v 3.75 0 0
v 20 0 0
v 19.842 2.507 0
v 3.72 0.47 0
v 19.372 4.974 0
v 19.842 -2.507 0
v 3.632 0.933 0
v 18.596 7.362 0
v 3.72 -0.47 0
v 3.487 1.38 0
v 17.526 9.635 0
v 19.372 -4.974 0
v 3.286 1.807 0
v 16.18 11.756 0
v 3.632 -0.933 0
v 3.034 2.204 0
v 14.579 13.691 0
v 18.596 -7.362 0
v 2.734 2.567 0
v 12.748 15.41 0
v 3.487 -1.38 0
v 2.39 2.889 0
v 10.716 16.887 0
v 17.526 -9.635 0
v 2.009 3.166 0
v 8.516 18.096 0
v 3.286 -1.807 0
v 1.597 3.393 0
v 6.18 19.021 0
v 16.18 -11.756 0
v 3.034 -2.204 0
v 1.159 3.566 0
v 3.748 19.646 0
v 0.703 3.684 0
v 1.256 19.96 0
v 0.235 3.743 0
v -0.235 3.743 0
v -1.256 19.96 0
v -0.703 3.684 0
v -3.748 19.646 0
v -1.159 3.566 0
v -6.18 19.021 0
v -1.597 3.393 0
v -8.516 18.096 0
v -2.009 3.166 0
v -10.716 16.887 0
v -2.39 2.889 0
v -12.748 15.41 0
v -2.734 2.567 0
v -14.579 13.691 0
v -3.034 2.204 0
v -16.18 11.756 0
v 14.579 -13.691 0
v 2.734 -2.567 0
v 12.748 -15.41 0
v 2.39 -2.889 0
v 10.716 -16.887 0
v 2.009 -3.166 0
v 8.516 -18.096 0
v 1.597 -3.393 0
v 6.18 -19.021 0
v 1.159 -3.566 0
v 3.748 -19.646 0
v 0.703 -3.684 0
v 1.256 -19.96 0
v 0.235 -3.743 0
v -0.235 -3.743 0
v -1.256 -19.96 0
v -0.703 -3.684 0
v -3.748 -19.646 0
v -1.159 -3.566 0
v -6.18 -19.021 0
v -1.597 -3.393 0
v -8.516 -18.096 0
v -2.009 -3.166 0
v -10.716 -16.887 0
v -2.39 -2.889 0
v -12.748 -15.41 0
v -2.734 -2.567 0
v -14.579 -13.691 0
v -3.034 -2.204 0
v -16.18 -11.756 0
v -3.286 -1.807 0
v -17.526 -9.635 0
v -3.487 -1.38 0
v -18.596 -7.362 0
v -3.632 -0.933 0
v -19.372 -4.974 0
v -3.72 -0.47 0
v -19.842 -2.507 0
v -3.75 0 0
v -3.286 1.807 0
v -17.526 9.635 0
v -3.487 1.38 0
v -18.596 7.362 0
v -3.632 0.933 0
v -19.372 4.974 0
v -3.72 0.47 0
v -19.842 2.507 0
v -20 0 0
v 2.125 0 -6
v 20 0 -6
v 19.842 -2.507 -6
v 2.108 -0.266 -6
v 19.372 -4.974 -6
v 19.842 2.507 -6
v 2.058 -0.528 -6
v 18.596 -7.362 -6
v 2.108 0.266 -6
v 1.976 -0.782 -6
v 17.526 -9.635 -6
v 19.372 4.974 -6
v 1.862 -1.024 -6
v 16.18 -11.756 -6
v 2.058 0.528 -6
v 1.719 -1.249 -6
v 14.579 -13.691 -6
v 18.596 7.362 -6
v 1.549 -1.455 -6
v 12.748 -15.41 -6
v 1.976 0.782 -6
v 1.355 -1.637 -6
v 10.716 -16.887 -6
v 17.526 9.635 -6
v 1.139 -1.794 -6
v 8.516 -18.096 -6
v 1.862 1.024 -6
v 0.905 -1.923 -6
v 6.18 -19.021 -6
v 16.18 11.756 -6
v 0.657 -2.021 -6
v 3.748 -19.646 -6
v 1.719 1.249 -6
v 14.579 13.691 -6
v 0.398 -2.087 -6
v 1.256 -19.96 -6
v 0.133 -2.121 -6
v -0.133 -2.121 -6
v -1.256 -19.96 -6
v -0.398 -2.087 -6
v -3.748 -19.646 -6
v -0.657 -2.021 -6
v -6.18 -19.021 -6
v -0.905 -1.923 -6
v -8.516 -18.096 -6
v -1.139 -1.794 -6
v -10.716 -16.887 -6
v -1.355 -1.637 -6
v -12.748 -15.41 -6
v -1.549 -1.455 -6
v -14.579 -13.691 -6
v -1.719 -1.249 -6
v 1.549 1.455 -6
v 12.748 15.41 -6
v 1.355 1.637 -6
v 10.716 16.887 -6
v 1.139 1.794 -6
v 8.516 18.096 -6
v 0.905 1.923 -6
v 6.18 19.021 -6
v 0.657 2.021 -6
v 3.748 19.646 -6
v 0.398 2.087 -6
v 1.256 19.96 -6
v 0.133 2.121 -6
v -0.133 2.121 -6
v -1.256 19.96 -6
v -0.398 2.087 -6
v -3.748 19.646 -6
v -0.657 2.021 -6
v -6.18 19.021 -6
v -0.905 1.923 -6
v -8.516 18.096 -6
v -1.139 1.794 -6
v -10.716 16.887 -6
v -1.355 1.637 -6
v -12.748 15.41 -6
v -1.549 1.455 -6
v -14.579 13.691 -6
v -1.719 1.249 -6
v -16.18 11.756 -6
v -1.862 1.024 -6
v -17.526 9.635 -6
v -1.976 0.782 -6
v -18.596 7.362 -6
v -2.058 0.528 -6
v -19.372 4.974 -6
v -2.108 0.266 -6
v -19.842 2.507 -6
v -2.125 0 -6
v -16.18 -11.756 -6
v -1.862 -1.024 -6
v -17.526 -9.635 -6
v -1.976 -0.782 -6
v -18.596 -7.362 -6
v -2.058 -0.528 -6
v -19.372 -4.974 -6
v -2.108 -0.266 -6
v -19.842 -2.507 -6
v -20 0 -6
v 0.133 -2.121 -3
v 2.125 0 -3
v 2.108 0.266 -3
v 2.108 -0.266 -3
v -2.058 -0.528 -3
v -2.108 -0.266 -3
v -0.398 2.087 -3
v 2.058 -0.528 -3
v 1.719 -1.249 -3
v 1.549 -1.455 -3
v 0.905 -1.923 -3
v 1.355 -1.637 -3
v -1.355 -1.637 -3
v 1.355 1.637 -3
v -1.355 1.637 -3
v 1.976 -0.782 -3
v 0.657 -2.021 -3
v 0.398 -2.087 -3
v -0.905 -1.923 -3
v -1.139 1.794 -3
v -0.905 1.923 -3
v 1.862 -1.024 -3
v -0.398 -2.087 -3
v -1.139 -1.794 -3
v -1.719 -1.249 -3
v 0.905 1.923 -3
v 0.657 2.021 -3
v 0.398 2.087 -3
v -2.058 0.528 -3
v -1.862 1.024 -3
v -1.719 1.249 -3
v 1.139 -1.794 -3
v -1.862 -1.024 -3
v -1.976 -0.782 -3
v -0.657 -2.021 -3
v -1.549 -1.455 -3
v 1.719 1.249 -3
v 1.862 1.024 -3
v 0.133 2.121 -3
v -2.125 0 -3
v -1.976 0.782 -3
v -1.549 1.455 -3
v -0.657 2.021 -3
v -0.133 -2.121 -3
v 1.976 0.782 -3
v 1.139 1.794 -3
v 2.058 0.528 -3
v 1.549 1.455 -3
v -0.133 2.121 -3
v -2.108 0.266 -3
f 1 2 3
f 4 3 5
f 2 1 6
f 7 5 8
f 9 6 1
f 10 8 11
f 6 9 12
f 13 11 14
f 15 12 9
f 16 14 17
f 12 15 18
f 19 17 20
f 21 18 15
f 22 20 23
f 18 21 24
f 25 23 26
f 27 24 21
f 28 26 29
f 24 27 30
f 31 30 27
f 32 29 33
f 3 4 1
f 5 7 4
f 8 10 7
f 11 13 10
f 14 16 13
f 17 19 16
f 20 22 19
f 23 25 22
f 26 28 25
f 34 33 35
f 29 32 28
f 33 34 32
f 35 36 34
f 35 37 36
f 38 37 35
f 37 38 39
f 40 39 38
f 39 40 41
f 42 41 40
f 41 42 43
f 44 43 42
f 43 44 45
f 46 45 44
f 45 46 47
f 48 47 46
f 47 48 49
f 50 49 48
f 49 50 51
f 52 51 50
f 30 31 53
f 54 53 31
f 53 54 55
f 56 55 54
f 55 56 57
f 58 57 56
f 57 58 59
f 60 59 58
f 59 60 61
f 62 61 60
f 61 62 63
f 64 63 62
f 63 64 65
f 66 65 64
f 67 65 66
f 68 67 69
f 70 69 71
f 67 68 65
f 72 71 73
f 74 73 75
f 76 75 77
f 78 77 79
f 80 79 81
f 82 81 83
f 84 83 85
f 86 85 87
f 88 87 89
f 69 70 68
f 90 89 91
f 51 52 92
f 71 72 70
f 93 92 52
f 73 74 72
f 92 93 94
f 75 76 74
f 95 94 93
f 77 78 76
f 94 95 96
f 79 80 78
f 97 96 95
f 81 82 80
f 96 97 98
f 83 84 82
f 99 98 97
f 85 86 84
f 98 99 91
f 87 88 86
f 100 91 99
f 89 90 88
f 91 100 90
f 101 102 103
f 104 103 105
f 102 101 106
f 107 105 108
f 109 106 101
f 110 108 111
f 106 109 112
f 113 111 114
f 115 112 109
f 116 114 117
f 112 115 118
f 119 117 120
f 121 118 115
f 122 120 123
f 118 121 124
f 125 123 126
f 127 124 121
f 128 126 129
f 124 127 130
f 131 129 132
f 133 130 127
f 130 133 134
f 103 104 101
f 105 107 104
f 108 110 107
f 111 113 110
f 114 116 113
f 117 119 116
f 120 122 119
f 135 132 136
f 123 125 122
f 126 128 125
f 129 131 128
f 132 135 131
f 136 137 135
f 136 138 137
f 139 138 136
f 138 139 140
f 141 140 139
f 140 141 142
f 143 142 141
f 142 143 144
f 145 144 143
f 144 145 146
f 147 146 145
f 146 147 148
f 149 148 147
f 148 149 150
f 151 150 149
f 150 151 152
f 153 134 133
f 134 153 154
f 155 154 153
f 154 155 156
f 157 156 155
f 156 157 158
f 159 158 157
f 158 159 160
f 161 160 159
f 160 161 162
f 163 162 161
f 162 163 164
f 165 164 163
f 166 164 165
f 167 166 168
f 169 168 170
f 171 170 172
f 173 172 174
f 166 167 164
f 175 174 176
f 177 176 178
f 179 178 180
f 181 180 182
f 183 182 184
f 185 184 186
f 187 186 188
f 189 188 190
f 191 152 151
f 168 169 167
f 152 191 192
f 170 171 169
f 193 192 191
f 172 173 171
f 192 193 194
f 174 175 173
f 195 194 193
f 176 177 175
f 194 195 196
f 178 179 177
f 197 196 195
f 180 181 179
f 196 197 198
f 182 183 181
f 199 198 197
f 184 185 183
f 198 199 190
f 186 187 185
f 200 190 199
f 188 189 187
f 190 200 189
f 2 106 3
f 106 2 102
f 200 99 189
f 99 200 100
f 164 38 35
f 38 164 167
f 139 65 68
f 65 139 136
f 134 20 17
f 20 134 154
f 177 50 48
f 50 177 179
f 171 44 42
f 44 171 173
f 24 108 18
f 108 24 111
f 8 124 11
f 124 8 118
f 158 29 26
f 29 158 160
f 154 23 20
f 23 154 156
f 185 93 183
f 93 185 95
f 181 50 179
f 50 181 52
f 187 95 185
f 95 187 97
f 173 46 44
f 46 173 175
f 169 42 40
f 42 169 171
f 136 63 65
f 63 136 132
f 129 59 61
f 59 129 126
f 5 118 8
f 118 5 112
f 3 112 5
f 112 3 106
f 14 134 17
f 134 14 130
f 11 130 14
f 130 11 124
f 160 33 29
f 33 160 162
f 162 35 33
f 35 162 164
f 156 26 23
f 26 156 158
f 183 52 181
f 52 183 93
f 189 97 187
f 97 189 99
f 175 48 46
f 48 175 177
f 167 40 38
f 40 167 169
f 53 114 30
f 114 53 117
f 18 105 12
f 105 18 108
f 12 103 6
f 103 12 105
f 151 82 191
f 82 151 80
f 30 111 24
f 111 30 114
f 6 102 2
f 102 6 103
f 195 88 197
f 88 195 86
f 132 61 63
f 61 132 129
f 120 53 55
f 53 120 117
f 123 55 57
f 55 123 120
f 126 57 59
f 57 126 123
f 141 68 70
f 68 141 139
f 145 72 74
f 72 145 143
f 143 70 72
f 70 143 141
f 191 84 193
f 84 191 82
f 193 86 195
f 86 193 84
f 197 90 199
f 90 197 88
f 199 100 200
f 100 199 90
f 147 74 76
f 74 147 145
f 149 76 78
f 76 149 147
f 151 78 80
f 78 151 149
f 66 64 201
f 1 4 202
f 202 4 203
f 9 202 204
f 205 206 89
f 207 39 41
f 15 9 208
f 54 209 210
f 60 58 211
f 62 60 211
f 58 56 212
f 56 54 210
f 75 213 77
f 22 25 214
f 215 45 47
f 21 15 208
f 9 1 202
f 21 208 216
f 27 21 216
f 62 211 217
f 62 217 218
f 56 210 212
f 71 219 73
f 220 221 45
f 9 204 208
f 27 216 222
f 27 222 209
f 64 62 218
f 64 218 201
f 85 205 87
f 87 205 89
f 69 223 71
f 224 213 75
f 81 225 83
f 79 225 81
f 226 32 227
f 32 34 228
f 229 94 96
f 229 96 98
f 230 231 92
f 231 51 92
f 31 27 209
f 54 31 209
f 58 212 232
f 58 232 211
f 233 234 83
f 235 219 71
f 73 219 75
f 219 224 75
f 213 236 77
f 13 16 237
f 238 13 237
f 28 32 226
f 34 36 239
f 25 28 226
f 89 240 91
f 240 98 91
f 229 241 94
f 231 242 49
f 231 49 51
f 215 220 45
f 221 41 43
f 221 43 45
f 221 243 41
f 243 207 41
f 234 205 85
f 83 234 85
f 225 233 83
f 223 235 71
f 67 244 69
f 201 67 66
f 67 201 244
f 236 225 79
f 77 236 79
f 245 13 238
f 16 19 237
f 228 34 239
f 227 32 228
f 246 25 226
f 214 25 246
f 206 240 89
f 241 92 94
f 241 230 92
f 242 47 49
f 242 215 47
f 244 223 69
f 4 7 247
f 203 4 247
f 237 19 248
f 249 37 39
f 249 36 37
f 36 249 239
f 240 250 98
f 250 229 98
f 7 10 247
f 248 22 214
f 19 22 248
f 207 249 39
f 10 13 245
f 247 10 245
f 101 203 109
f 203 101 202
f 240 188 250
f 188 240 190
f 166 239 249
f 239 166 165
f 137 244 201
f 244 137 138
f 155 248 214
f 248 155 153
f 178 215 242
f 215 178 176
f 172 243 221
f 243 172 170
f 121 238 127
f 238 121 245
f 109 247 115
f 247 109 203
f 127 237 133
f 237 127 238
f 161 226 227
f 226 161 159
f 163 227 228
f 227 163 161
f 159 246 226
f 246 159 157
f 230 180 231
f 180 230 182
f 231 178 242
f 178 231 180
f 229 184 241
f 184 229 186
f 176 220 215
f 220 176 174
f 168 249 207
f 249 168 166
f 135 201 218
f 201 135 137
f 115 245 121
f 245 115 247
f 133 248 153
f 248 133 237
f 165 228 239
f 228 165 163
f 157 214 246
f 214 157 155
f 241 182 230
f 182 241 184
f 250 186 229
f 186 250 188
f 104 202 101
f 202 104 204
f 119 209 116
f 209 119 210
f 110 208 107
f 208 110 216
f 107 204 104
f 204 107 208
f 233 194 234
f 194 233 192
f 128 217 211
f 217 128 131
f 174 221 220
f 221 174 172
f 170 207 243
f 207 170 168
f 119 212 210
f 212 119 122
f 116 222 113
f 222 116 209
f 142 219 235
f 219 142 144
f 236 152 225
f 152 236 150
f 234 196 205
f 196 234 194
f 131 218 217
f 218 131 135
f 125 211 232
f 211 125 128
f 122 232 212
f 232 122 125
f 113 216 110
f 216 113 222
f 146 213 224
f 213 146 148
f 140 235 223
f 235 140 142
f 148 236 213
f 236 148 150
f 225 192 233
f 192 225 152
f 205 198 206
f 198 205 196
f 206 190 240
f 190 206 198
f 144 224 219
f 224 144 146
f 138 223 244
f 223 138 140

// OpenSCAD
$fn = 50;


difference() {
	union() {
		translate(v = [0, 0, -6.0000000000]) {
			cylinder(h = 6, r = 10.0000000000);
		}
		translate(v = [0, 0, -6.0000000000]) {
			cylinder(h = 6, r = 20.0000000000);
		}
	}
	union() {
		translate(v = [0, 0, 0]) {
			rotate(a = [0, 0, 0]) {
				difference() {
					union() {
						#translate(v = [0, 0, -6.0000000000]) {
							cylinder(h = 6, r = 2.0000000000);
						}
						#translate(v = [0, 0, -3]) {
							cylinder(h = 3, r1 = 2.1250000000, r2 = 3.7500000000);
						}
						#translate(v = [0, 0, -6.0000000000]) {
							cylinder(h = 6, r = 2.1250000000);
						}
						#translate(v = [0, 0, -6.0000000000]) {
							cylinder(h = 6, r = 2.0000000000);
						}
					}
					union();
				}
			}
		}
	}
}
